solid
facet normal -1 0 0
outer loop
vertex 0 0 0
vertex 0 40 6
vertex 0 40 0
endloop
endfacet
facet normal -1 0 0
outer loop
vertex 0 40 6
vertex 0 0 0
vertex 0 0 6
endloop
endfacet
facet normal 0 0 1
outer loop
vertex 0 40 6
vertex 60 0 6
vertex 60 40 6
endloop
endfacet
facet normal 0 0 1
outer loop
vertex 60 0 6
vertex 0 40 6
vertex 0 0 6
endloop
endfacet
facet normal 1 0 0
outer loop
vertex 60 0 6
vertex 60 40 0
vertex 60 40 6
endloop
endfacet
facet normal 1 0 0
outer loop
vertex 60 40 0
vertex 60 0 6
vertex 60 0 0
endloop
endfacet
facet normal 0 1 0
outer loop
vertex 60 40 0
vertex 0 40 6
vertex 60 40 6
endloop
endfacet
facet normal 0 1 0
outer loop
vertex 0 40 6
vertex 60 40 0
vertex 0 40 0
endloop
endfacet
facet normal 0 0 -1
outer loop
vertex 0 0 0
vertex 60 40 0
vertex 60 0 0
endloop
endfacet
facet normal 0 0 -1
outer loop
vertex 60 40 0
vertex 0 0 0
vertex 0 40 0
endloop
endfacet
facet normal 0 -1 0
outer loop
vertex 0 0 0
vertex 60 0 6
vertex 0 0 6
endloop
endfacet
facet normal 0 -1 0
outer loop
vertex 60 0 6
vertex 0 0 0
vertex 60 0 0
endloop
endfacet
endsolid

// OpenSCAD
module rectangular_plate(width, height, depth, center_x, center_y, center_z) {
  difference() {
    cube([width, height, depth]);
    translate([center_x, center_y, center_z]) {
      cylinder(h = 6, r = 8, center = true);
    }
  }
}

rectangular_plate(60, 40, 6, 30, 20, 20);
